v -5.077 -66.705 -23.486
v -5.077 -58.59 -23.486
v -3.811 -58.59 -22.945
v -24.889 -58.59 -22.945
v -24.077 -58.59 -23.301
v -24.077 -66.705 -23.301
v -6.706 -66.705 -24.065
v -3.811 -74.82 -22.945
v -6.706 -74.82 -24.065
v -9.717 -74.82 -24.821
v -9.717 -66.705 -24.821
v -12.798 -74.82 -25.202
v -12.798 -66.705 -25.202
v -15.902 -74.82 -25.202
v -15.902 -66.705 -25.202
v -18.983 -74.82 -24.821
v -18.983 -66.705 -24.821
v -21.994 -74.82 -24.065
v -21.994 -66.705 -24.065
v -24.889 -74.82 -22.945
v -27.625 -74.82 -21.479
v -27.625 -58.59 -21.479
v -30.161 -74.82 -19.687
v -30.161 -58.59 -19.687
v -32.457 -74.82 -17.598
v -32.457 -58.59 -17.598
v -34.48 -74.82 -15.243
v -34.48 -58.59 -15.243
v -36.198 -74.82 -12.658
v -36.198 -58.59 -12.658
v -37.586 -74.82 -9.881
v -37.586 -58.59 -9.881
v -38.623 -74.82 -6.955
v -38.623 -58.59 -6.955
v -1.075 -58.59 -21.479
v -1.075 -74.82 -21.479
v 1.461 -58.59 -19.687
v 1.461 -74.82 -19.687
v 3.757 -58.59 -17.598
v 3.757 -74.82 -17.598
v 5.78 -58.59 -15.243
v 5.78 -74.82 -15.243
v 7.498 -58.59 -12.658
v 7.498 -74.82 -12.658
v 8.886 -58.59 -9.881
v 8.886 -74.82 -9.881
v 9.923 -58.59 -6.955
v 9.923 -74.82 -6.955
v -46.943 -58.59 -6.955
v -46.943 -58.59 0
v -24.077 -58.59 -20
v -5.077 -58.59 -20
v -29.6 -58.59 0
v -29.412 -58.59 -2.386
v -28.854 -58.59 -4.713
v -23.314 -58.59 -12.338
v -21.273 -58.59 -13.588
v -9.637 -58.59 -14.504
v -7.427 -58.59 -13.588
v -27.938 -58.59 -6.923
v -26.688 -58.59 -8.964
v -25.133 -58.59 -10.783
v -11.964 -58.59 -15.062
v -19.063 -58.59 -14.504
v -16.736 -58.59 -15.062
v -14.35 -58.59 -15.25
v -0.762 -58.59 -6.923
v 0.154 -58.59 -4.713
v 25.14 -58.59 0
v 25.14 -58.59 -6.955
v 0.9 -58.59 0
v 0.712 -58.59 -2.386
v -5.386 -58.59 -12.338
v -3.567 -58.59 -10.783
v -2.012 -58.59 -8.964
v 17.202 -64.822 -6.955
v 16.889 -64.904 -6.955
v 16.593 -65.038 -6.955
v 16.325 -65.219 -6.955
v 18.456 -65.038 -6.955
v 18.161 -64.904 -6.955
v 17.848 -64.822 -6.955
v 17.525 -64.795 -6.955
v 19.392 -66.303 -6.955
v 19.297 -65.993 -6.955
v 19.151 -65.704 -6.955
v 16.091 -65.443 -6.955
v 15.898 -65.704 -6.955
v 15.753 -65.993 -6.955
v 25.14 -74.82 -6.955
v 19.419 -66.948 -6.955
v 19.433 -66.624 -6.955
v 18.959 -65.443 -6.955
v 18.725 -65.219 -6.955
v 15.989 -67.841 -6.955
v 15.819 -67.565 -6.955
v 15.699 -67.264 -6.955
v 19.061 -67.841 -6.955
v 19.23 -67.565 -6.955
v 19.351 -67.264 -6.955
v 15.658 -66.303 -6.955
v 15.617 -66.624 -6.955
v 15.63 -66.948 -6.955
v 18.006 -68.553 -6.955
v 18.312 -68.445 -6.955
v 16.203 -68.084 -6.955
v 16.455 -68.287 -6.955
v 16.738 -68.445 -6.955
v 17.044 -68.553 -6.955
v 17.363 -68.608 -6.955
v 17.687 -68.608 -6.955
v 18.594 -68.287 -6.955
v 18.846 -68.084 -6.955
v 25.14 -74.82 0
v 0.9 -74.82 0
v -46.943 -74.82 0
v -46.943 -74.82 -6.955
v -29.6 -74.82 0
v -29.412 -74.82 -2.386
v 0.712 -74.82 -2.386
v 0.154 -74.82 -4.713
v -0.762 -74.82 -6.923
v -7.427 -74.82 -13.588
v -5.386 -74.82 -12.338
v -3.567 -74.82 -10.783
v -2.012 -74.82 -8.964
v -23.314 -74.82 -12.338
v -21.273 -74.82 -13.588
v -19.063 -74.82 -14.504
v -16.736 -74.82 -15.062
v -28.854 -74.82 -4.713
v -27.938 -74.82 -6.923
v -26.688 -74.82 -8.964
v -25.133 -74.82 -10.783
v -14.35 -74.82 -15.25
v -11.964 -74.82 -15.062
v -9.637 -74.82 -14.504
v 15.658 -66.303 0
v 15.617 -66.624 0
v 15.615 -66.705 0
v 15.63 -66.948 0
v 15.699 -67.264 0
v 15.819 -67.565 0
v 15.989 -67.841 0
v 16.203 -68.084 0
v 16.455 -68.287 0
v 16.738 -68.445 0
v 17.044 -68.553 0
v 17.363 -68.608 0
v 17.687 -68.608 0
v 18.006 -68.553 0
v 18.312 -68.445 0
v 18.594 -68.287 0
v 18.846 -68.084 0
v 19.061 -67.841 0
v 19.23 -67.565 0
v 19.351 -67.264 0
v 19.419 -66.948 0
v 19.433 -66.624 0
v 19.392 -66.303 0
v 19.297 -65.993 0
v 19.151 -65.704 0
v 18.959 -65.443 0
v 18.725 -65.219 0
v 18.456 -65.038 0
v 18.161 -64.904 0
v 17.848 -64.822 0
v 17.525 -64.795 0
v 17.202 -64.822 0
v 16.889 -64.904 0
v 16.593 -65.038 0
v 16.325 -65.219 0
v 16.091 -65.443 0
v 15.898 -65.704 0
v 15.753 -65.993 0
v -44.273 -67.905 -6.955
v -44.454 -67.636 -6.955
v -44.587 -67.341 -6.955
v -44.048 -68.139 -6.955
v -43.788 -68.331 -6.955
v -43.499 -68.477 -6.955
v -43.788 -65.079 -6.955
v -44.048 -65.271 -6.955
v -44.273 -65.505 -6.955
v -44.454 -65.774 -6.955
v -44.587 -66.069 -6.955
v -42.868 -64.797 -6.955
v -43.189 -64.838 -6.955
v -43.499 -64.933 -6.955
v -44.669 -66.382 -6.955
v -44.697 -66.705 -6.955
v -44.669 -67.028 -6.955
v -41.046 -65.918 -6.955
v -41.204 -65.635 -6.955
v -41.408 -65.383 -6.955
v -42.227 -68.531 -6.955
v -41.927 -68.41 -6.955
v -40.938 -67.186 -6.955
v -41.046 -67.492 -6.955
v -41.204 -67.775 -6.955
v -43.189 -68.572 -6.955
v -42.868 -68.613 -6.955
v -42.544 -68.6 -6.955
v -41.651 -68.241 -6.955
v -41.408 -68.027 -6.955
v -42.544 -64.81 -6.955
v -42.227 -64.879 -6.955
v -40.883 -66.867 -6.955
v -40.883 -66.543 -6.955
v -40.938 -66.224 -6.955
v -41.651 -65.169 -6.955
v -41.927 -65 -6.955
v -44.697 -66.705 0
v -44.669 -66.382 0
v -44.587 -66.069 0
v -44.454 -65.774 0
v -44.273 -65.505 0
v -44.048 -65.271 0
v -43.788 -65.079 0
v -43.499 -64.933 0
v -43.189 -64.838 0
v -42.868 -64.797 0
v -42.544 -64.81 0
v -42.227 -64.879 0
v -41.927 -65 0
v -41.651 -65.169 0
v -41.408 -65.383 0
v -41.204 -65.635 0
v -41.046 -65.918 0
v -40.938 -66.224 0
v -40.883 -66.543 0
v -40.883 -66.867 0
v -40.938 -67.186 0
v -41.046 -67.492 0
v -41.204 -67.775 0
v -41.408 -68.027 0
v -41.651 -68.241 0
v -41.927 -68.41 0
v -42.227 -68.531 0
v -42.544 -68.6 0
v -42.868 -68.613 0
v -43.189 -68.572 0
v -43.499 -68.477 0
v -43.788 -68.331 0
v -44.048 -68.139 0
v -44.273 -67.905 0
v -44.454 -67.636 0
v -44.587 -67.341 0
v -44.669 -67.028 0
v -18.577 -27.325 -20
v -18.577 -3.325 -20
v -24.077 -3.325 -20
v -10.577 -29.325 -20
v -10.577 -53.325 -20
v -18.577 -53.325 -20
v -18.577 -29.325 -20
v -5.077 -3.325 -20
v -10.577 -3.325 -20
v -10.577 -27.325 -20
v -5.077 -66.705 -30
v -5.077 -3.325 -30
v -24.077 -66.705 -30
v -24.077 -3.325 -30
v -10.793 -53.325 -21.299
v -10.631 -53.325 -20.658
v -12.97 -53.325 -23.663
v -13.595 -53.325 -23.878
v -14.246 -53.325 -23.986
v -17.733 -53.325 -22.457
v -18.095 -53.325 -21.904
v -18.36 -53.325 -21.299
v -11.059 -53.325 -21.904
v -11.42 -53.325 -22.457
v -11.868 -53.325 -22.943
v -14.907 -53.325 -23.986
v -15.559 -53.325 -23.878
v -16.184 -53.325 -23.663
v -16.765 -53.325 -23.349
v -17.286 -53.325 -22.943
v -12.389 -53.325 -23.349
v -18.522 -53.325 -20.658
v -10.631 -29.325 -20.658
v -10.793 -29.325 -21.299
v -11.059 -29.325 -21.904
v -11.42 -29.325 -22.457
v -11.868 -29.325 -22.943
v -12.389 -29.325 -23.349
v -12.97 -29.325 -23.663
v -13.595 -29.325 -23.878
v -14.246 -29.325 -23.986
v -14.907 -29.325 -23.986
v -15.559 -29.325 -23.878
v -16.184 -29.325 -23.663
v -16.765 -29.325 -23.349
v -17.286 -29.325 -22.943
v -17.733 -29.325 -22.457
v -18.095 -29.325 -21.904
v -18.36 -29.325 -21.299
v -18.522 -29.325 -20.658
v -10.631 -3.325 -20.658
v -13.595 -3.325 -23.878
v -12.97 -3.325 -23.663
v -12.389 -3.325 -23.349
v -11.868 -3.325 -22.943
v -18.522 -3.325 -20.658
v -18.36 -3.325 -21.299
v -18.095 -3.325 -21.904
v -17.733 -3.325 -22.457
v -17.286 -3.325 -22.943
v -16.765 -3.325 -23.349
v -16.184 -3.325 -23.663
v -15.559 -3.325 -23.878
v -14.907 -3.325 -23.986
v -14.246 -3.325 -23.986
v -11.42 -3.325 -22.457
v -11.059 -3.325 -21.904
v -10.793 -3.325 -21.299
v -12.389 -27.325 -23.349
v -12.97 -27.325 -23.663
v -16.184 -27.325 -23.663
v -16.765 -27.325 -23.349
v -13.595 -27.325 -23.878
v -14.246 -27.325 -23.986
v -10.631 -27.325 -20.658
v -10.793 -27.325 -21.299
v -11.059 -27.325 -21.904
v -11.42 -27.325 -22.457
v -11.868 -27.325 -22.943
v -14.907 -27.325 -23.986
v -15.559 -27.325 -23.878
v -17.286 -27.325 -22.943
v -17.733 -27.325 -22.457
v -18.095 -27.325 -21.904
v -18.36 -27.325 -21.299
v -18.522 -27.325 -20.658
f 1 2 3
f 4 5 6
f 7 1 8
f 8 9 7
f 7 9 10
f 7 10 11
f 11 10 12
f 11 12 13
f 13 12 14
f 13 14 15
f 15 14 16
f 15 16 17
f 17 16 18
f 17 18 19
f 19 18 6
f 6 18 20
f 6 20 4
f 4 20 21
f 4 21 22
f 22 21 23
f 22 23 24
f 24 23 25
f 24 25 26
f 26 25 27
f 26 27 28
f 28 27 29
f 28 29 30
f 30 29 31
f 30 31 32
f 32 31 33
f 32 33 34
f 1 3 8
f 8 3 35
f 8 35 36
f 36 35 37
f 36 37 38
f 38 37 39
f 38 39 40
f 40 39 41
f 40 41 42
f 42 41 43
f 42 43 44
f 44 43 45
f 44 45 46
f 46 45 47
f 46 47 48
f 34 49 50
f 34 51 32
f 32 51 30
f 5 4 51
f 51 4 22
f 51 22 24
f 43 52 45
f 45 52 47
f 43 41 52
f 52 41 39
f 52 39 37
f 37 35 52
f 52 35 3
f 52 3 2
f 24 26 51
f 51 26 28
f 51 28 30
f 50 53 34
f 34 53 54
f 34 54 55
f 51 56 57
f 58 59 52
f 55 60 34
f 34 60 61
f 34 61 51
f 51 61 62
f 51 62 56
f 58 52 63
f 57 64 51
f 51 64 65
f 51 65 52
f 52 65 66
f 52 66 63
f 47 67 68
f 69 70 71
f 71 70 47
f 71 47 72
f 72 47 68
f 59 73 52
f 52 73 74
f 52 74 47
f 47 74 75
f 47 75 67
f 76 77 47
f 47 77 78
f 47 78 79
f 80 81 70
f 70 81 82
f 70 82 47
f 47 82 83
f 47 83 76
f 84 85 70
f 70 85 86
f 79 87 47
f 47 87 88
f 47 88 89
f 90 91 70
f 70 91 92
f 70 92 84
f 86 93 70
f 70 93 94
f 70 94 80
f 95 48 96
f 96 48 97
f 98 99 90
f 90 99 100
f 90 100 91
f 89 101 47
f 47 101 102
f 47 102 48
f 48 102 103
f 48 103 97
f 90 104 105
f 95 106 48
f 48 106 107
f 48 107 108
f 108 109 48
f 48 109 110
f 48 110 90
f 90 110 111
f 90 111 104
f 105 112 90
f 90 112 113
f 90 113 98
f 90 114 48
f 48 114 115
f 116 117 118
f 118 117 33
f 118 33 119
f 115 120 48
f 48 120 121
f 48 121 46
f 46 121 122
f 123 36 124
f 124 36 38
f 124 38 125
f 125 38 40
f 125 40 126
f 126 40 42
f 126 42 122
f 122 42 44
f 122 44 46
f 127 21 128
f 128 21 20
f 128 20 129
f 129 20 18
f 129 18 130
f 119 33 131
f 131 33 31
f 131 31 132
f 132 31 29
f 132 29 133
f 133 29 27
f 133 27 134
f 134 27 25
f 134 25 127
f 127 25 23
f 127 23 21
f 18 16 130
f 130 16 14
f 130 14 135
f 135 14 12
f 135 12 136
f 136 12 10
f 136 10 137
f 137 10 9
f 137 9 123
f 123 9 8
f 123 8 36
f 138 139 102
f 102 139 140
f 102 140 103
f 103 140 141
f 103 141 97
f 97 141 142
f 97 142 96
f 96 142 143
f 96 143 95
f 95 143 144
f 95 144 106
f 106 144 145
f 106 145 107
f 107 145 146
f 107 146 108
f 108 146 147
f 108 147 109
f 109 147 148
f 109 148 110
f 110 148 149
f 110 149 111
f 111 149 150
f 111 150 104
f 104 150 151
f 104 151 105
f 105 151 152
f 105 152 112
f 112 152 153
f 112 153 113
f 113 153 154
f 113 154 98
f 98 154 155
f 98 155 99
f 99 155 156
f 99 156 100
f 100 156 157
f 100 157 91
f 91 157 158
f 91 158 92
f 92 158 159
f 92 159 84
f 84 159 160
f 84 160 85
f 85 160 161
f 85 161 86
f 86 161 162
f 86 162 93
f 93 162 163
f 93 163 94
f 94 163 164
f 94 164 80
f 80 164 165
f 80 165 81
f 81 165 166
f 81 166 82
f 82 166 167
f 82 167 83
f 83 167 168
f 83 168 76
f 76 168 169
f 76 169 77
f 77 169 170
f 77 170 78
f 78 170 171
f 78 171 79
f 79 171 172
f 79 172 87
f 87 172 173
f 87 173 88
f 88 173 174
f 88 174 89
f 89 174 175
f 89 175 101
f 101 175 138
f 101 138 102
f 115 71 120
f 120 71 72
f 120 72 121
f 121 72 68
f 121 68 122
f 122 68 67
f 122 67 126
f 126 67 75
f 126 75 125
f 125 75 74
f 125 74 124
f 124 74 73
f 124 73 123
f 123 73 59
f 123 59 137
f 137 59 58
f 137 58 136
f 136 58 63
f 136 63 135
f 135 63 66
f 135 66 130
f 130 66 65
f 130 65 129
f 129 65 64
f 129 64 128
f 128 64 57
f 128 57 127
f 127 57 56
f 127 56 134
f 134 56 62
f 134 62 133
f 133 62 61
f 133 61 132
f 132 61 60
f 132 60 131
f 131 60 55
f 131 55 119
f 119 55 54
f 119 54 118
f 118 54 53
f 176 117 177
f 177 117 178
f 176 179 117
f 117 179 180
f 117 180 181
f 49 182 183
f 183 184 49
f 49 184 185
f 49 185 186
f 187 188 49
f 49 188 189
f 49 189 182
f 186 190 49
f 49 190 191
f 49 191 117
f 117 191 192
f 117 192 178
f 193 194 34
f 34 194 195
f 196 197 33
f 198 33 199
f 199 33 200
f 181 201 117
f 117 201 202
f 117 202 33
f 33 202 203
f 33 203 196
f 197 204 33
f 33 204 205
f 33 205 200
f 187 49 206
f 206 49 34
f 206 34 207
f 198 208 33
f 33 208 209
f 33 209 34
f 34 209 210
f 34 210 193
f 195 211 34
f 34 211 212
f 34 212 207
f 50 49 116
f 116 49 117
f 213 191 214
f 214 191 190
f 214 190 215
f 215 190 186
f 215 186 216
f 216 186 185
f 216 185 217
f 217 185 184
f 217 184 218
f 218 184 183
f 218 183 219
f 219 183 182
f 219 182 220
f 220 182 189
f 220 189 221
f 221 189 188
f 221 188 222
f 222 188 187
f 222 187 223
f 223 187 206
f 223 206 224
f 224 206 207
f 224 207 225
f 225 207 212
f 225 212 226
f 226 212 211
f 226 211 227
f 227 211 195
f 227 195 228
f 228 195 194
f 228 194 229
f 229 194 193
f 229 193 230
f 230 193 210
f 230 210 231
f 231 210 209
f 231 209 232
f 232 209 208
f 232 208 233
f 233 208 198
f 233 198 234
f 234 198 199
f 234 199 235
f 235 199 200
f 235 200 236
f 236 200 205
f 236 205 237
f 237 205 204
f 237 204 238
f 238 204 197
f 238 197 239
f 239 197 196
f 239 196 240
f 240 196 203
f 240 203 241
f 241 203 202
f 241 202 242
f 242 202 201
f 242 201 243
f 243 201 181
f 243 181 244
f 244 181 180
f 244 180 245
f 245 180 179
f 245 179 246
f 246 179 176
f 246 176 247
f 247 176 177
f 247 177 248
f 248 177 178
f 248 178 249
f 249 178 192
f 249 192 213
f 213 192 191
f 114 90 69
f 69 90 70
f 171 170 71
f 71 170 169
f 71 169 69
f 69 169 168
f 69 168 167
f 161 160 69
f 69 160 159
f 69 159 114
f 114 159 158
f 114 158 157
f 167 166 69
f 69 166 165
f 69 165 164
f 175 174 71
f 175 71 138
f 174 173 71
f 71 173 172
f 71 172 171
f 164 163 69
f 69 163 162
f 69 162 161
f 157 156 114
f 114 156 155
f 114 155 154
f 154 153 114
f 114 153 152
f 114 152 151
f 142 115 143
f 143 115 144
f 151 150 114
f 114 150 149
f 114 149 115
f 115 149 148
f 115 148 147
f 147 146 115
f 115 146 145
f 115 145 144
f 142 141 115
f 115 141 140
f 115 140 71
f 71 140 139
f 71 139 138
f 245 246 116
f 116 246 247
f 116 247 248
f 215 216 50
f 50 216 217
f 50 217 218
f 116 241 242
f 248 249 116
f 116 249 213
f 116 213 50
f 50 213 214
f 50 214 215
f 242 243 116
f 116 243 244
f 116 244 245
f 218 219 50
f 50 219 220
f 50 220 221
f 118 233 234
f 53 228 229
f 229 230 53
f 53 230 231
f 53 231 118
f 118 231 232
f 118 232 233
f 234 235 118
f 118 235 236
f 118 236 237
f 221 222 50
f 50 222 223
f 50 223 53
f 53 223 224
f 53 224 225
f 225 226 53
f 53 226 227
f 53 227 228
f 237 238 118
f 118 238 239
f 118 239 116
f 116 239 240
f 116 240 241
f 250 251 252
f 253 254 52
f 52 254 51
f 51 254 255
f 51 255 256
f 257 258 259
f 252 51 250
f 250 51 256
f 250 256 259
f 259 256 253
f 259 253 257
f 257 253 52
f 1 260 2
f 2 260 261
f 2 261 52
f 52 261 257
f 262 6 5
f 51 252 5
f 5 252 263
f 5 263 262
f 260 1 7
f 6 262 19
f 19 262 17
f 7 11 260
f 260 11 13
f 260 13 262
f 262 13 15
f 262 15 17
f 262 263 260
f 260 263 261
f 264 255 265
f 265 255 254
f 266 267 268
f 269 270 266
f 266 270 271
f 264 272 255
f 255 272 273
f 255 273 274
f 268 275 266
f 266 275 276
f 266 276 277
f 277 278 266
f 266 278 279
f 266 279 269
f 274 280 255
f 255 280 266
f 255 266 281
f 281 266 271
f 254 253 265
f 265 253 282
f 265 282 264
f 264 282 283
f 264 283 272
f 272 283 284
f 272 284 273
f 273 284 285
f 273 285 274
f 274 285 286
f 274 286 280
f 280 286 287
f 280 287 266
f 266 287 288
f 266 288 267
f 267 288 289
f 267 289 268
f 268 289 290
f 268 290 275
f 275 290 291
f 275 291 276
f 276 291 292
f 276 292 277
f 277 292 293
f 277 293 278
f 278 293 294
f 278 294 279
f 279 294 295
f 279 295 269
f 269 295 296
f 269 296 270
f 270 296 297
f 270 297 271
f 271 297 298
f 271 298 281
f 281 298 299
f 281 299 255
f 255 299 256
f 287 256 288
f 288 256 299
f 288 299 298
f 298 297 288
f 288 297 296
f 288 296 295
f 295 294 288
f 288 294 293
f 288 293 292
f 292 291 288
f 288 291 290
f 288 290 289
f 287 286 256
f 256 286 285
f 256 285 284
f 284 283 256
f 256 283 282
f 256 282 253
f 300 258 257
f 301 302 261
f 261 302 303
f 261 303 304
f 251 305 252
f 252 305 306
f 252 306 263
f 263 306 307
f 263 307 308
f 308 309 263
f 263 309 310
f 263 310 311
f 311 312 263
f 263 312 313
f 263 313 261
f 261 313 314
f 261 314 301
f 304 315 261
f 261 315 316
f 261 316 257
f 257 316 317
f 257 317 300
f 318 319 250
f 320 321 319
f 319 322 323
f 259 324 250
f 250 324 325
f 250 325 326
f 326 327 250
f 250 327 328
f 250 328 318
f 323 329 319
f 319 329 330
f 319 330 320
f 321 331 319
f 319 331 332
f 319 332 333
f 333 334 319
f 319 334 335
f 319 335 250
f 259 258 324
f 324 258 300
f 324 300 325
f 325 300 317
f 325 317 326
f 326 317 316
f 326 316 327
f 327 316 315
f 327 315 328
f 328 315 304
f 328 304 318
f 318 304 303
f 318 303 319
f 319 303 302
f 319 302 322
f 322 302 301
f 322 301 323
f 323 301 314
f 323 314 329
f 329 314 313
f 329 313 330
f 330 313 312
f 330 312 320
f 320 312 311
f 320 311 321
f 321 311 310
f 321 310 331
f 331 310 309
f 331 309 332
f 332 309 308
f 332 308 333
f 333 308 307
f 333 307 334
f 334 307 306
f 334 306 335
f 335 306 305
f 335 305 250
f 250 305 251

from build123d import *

# Parameters (mm, degrees)
SKETCH_1_W                = 50.28
SKETCH_1_H                = 34.2
SKETCH_1_W_2              = 30.28
SKETCH_1_H_2              = 14.2
EXTRUDE_1_DEPTH           = 12.25
SKETCH_4_W                = 13
SKETCH_4_H                = 13.91
EXTRUDE_1_2_DEPTH         = 74.82
SKETCH_5_W                = 13.91
SKETCH_5_H                = 16.23
EXTRUDE_2_DEPTH           = 16
SKETCH_7_R                = 25.25
SKETCH_7_R_2              = 15.25
EXTRUDE_2_2_DEPTH         = 16.23
SKETCH_15_R               = 1.91
CUT_EXTRUDE_6_DEPTH       = 97.964478439
SKETCH_18_W               = 49.344544624
SKETCH_18_H               = 6.125
CUT_EXTRUDE_8_DEPTH       = 101.789238284
SKETCH_19_W               = 34.2
SKETCH_19_H               = 6.125
CUT_EXTRUDE_9_DEPTH       = 10
SKETCH_21_R               = 1.91
CUT_EXTRUDE_10_DEPTH      = 10
SKETCH_20_R               = 1.91
CUT_EXTRUDE_11_DEPTH      = 10
FILLET_START              = -7.1
FILLET_1_DEPTH            = 14.2
FILLET_2_DEPTH            = 14.2
SKETCH_29_W               = 13.91
SKETCH_29_H               = 74.82
EXTRUDE_5_DEPTH           = 10
SKETCH_30_W               = 10
SKETCH_30_H               = 58.59
CUT_EXTRUDE_13_DEPTH      = 97.964478439
SKETCH_32_W               = 34.2
SKETCH_32_H               = 5.745736365
EXTRUDE_6_DEPTH           = 10
CUT_EXTRUDE_16_DEPTH      = 50
CUT_EXTRUDE_16_DEPTH_BACK = 50
SKETCH_38_W               = 116.985630298
SKETCH_38_H               = 80.538350638
SKETCH_41_W               = 13.91
SKETCH_41_H               = 5.745736365
EXTRUDE_7_DEPTH           = 3
SKETCH_42_W               = 13
SKETCH_42_H               = 13.91
EXTRUDE_8_DEPTH           = 74.82
SKETCH_43_W               = 13.91
SKETCH_43_H               = 16.23
EXTRUDE_9_DEPTH           = 15.22
SKETCH_44_R               = 1.91
CUT_EXTRUDE_17_DEPTH      = 15.22
SKETCH_46_R               = 25.25
SKETCH_46_R_2             = 15.25
EXTRUDE_6_2_DEPTH         = 16.23
EXTRUDE_10_DEPTH          = 7.22
EXTRUDE_10_DEPTH_BACK     = 10
SKETCH_47_W               = 13.91
SKETCH_47_H               = 16.23
SKETCH_50_W               = 3.056753925
SKETCH_50_H               = 16.23
CUT_EXTRUDE_18_DEPTH      = 96.578211037
SKETCH_51_R               = 1.91
CUT_EXTRUDE_19_DEPTH      = 95.015226304
CUT_EXTRUDE_21_DEPTH      = 95.015226304
CUT_EXTRUDE_21_DEPTH_BACK = 95.015226304
SKETCH_54_W               = 96.956660426
SKETCH_54_H               = 45.351296872
CUT_EXTRUDE_22_DEPTH      = 60
SKETCH_59_W               = 19
SKETCH_59_H               = 37.38
EXTRUDE_12_DEPTH          = 10
SKETCH_60_R               = 4
CUT_EXTRUDE_25_DEPTH      = 24
SKETCH_61_W               = 19
SKETCH_61_H               = 10
EXTRUDE_13_DEPTH          = 26
SKETCH_62_R               = 4
CUT_EXTRUDE_26_DEPTH      = 24


with BuildPart() as part:
    # 草圖1 → Extrude 1 (new body)
    with BuildSketch(Plane(origin=(0, 0, 0), x_dir=(1, 0, 0), z_dir=(0, 1, 0))):
        Rectangle(SKETCH_1_W, SKETCH_1_H)
        Rectangle(SKETCH_1_W_2, SKETCH_1_H_2, mode=Mode.SUBTRACT)
    extrude(amount=EXTRUDE_1_DEPTH)

    # 草圖4 → Extrude 1 2 (add)
    with BuildSketch(Plane.XZ):
        with Locations((18.64, 0)):
            Rectangle(SKETCH_4_W, SKETCH_4_H)
    extrude(amount=EXTRUDE_1_2_DEPTH)

    # 草圖5 → Extrude 2 (add)
    with BuildSketch(Plane.ZY.offset(-12.14)):
        with Locations((0, -66.705)):
            Rectangle(SKETCH_5_W, SKETCH_5_H)
    extrude(amount=EXTRUDE_2_DEPTH)

    # 草圖7 → Extrude 2 2 (add)
    with BuildSketch(Plane(origin=(3.626674765, -74.82, 0), x_dir=(1, 0, 0), z_dir=(0, -1, 0))):
        with Locations((-30.978154344, 0)):
            Circle(SKETCH_7_R)
        with Locations((-30.978154344, 0)):
            Circle(SKETCH_7_R_2, mode=Mode.SUBTRACT)
    extrude(amount=-EXTRUDE_2_2_DEPTH)

    # 草圖15 → 除料-伸長6 (cut, through all)
    with BuildSketch(Plane(origin=(0, 0, -6.955), x_dir=(-1, 0, 0), z_dir=(0, 0, -1))):
        with Locations((-4.530883248, -66.705)):
            Circle(SKETCH_15_R)
    extrude(amount=-CUT_EXTRUDE_6_DEPTH, mode=Mode.SUBTRACT)

    # 草圖18 → 除料-伸長8 (cut, through all)
    with BuildSketch(Plane(origin=(0, 0, -17.1), x_dir=(-1, 0, 0), z_dir=(0, 0, -1))):
        with Locations((0.467727688, 9.1875)):
            Rectangle(SKETCH_18_W, SKETCH_18_H)
    extrude(amount=-CUT_EXTRUDE_8_DEPTH, mode=Mode.SUBTRACT)

    # 草圖19 → 除料-伸長9 (cut)
    with BuildSketch(Plane.ZY.offset(-24.204544624)):
        with Locations((0, 9.1875)):
            Rectangle(SKETCH_19_W, SKETCH_19_H)
    extrude(amount=-CUT_EXTRUDE_9_DEPTH, mode=Mode.SUBTRACT)

    # 草圖21 → 除料-伸長10 (cut)
    with BuildSketch(Plane(origin=(0, 6.125, 0), x_dir=(1, 0, 0), z_dir=(0, 1, 0))):
        with Locations(Location((17.69, 0, 0), (0, 0, 270))):
            Circle(SKETCH_21_R)
    extrude(amount=-CUT_EXTRUDE_10_DEPTH, mode=Mode.SUBTRACT)

    # 草圖20 → 除料-伸長11 (cut)
    with BuildSketch(Plane(origin=(0, 6.125, 0), x_dir=(1, 0, 0), z_dir=(0, 1, 0))):
        with Locations(Location((-17.395, 0, 0), (0, 0, 270))):
            Circle(SKETCH_20_R)
    extrude(amount=-CUT_EXTRUDE_11_DEPTH, mode=Mode.SUBTRACT)

    # 圓角1: read off the stored shape, not the designer's step
    # 圓角1 outline → 圓角1 (cut)
    with BuildSketch(Plane.XY.offset(FILLET_START)):
        with BuildLine():
            add(Edge.make_bspline(
                [(-15.14, 0), (-21.974170252, 5.199829476), (-25.14, 5.745736365)],
                knots=[0, 0, 0, 0.664102345, 0.664102345, 0.664102345], degree=2, weights=[1, 2.223777218, 1.822127795]))
            Line((-15.14, 0), (-15.14, 6.125))
            Line((-15.14, 6.125), (-25.14, 6.125))
            Line((-25.14, 6.125), (-25.14, 5.745736365))
        make_face()
    extrude(amount=FILLET_1_DEPTH, mode=Mode.SUBTRACT)

    # 圓角2: read off the stored shape, not the designer's step
    # 圓角2 outline → 圓角2 (cut)
    with BuildSketch(Plane.XY.offset(FILLET_START)):
        with BuildLine():
            Line((15.14, 6.125), (15.14, 0))
            add(Edge.make_bspline(
                [(15.14, 0), (21.974170252, 5.199829476), (25.14, 5.745736365)],
                knots=[0, 0, 0, 0.664102345, 0.664102345, 0.664102345], degree=2, weights=[1, 2.223777218, 1.822127795]))
            Line((25.14, 5.745736365), (25.14, 6.125))
            Line((25.14, 6.125), (15.14, 6.125))
        make_face()
    extrude(amount=FILLET_2_DEPTH, mode=Mode.SUBTRACT)

    # 草圖29 → 填料-伸長5 (add)
    with BuildSketch(Plane(origin=(25.14, 0, 0), x_dir=(0, 0, -1), z_dir=(1, 0, 0))):
        with Locations((0, -37.41)):
            Rectangle(SKETCH_29_W, SKETCH_29_H)
    extrude(amount=EXTRUDE_5_DEPTH)

    # 草圖30 → 除料-伸長13 (cut, through all)
    with BuildSketch(Plane.XY.offset(6.955)):
        with Locations((17.14, -29.295)):
            Rectangle(SKETCH_30_W, SKETCH_30_H)
    extrude(amount=-CUT_EXTRUDE_13_DEPTH, mode=Mode.SUBTRACT)

    # 草圖32 → Extrude 6 (add)
    with BuildSketch(Plane(origin=(25.14, 0, 0), x_dir=(0, 0, -1), z_dir=(1, 0, 0))):
        with Locations((0, 2.872868182)):
            Rectangle(SKETCH_32_W, SKETCH_32_H)
    extrude(amount=EXTRUDE_6_DEPTH)

    # 草圖38 → 除料-伸長16 (cut, two sides: drawn at the far end of the back side and taken through both)
    with BuildSketch(Plane(origin=(0, 0, -6.955), x_dir=(-1, 0, 0), z_dir=(0, 0, -1)).offset(-CUT_EXTRUDE_16_DEPTH_BACK)):
        with Locations((7.268869252, -40.269175319)):
            Rectangle(SKETCH_38_W, SKETCH_38_H)
    extrude(amount=CUT_EXTRUDE_16_DEPTH + CUT_EXTRUDE_16_DEPTH_BACK, mode=Mode.SUBTRACT)

    # 草圖41 → 填料-伸長7 (add)
    with BuildSketch(Plane(origin=(35.14, 0, 0), x_dir=(0, 0, -1), z_dir=(1, 0, 0))):
        with Locations((0, 2.872868182)):
            Rectangle(SKETCH_41_W, SKETCH_41_H)
    extrude(amount=EXTRUDE_7_DEPTH)

    # 草圖42 → 填料-伸長8 (add)
    with BuildSketch(Plane(origin=(0, 0, 0), x_dir=(-1, 0, 0), z_dir=(0, -1, 0))):
        with Locations((-31.64, 0)):
            Rectangle(SKETCH_42_W, SKETCH_42_H)
    extrude(amount=EXTRUDE_8_DEPTH)

    # 草圖43 → 填料-伸長9 (add)
    with BuildSketch(Plane.ZY.offset(-25.14)):
        with Locations((0, -66.705)):
            Rectangle(SKETCH_43_W, SKETCH_43_H)
    extrude(amount=EXTRUDE_9_DEPTH)

    # 草圖44 → 除料-伸長17 (cut)
    with BuildSketch(Plane(origin=(0, 0, -6.955), x_dir=(-1, 0, 0), z_dir=(0, 0, -1))):
        with Locations(Location((-17.524895264, -66.705, 0), (0, 0, 90))):
            Circle(SKETCH_44_R)
    extrude(amount=-CUT_EXTRUDE_17_DEPTH, mode=Mode.SUBTRACT)

    # 草圖46 → Extrude 6 2 (add)
    with BuildSketch(Plane(origin=(0, -58.59, 0), x_dir=(1, 0, 0), z_dir=(0, 1, 0))):
        with Locations((-14.35, 0)):
            Circle(SKETCH_46_R)
        with Locations((-14.35, 0)):
            Circle(SKETCH_46_R_2, mode=Mode.SUBTRACT)
    extrude(amount=-EXTRUDE_6_2_DEPTH)

    # 草圖47 → 填料-伸長10 (add, two sides: drawn at the far end of the back side and taken through both)
    with BuildSketch(Plane(origin=(-40, 0, 0), x_dir=(0, 0, -1), z_dir=(1, 0, 0)).offset(-EXTRUDE_10_DEPTH_BACK)):
        with Locations((0, -66.705)):
            Rectangle(SKETCH_47_W, SKETCH_47_H)
    extrude(amount=EXTRUDE_10_DEPTH + EXTRUDE_10_DEPTH_BACK)

    # 草圖50 → 除料-伸長18 (cut, through all)
    with BuildSketch(Plane(origin=(0, 0, -6.955), x_dir=(-1, 0, 0), z_dir=(0, 0, -1))):
        with Locations((48.471623038, -66.705)):
            Rectangle(SKETCH_50_W, SKETCH_50_H)
    extrude(amount=-CUT_EXTRUDE_18_DEPTH, mode=Mode.SUBTRACT)

    # 草圖51 → 除料-伸長19 (cut, through all)
    with BuildSketch(Plane(origin=(0, 0, -6.955), x_dir=(-1, 0, 0), z_dir=(0, 0, -1))):
        with Locations((42.786508152, -66.705)):
            Circle(SKETCH_51_R)
    extrude(amount=-CUT_EXTRUDE_19_DEPTH, mode=Mode.SUBTRACT)

    # 草圖53 → 除料-伸長21 (cut, two sides: drawn at the far end of the back side and taken through both)
    with BuildSketch(Plane.XY.offset(6.955).offset(-CUT_EXTRUDE_21_DEPTH_BACK)):
        Polygon((25.14, -58.59), (25.14, -81.637244924), (42.795360098, -81.637244924), (56.21630317, 11.638309425), (-41.644740061, 8.95412081), (-39.519757408, -16.545671026), (25.14, -20.795636332), align=None)
    extrude(amount=CUT_EXTRUDE_21_DEPTH + CUT_EXTRUDE_21_DEPTH_BACK, mode=Mode.SUBTRACT)

    # 草圖54 → 除料-伸長22 (cut)
    with BuildSketch(Plane(origin=(0, -58.59, 0), x_dir=(1, 0, 0), z_dir=(0, 1, 0))):
        with Locations((-23.338330213, -22.675648436)):
            Rectangle(SKETCH_54_W, SKETCH_54_H)
    extrude(amount=-CUT_EXTRUDE_22_DEPTH, mode=Mode.SUBTRACT)

    # 草圖59 → 填料-伸長12 (add)
    with BuildSketch(Plane.XY.offset(-30)):
        with Locations((-14.576753925, -48.015)):
            Rectangle(SKETCH_59_W, SKETCH_59_H)
    extrude(amount=EXTRUDE_12_DEPTH)

    # 草圖60 → 除料-伸長25 (cut)
    with BuildSketch(Plane(origin=(0, -29.325, 0), x_dir=(1, 0, 0), z_dir=(0, 1, 0))):
        with Locations((-14.576753925, 20)):
            Circle(SKETCH_60_R)
    extrude(amount=-CUT_EXTRUDE_25_DEPTH, mode=Mode.SUBTRACT)

    # 草圖61 → 填料-伸長13 (add)
    with BuildSketch(Plane(origin=(0, -29.325, 0), x_dir=(1, 0, 0), z_dir=(0, 1, 0))):
        with Locations((-14.576753925, 25)):
            Rectangle(SKETCH_61_W, SKETCH_61_H)
    extrude(amount=EXTRUDE_13_DEPTH)

    # 草圖62 → 除料-伸長26 (cut)
    with BuildSketch(Plane(origin=(0, -3.325, 0), x_dir=(1, 0, 0), z_dir=(0, 1, 0))):
        with Locations((-14.576753925, 20)):
            Circle(SKETCH_62_R)
    extrude(amount=-CUT_EXTRUDE_26_DEPTH, mode=Mode.SUBTRACT)


solid = part.part
